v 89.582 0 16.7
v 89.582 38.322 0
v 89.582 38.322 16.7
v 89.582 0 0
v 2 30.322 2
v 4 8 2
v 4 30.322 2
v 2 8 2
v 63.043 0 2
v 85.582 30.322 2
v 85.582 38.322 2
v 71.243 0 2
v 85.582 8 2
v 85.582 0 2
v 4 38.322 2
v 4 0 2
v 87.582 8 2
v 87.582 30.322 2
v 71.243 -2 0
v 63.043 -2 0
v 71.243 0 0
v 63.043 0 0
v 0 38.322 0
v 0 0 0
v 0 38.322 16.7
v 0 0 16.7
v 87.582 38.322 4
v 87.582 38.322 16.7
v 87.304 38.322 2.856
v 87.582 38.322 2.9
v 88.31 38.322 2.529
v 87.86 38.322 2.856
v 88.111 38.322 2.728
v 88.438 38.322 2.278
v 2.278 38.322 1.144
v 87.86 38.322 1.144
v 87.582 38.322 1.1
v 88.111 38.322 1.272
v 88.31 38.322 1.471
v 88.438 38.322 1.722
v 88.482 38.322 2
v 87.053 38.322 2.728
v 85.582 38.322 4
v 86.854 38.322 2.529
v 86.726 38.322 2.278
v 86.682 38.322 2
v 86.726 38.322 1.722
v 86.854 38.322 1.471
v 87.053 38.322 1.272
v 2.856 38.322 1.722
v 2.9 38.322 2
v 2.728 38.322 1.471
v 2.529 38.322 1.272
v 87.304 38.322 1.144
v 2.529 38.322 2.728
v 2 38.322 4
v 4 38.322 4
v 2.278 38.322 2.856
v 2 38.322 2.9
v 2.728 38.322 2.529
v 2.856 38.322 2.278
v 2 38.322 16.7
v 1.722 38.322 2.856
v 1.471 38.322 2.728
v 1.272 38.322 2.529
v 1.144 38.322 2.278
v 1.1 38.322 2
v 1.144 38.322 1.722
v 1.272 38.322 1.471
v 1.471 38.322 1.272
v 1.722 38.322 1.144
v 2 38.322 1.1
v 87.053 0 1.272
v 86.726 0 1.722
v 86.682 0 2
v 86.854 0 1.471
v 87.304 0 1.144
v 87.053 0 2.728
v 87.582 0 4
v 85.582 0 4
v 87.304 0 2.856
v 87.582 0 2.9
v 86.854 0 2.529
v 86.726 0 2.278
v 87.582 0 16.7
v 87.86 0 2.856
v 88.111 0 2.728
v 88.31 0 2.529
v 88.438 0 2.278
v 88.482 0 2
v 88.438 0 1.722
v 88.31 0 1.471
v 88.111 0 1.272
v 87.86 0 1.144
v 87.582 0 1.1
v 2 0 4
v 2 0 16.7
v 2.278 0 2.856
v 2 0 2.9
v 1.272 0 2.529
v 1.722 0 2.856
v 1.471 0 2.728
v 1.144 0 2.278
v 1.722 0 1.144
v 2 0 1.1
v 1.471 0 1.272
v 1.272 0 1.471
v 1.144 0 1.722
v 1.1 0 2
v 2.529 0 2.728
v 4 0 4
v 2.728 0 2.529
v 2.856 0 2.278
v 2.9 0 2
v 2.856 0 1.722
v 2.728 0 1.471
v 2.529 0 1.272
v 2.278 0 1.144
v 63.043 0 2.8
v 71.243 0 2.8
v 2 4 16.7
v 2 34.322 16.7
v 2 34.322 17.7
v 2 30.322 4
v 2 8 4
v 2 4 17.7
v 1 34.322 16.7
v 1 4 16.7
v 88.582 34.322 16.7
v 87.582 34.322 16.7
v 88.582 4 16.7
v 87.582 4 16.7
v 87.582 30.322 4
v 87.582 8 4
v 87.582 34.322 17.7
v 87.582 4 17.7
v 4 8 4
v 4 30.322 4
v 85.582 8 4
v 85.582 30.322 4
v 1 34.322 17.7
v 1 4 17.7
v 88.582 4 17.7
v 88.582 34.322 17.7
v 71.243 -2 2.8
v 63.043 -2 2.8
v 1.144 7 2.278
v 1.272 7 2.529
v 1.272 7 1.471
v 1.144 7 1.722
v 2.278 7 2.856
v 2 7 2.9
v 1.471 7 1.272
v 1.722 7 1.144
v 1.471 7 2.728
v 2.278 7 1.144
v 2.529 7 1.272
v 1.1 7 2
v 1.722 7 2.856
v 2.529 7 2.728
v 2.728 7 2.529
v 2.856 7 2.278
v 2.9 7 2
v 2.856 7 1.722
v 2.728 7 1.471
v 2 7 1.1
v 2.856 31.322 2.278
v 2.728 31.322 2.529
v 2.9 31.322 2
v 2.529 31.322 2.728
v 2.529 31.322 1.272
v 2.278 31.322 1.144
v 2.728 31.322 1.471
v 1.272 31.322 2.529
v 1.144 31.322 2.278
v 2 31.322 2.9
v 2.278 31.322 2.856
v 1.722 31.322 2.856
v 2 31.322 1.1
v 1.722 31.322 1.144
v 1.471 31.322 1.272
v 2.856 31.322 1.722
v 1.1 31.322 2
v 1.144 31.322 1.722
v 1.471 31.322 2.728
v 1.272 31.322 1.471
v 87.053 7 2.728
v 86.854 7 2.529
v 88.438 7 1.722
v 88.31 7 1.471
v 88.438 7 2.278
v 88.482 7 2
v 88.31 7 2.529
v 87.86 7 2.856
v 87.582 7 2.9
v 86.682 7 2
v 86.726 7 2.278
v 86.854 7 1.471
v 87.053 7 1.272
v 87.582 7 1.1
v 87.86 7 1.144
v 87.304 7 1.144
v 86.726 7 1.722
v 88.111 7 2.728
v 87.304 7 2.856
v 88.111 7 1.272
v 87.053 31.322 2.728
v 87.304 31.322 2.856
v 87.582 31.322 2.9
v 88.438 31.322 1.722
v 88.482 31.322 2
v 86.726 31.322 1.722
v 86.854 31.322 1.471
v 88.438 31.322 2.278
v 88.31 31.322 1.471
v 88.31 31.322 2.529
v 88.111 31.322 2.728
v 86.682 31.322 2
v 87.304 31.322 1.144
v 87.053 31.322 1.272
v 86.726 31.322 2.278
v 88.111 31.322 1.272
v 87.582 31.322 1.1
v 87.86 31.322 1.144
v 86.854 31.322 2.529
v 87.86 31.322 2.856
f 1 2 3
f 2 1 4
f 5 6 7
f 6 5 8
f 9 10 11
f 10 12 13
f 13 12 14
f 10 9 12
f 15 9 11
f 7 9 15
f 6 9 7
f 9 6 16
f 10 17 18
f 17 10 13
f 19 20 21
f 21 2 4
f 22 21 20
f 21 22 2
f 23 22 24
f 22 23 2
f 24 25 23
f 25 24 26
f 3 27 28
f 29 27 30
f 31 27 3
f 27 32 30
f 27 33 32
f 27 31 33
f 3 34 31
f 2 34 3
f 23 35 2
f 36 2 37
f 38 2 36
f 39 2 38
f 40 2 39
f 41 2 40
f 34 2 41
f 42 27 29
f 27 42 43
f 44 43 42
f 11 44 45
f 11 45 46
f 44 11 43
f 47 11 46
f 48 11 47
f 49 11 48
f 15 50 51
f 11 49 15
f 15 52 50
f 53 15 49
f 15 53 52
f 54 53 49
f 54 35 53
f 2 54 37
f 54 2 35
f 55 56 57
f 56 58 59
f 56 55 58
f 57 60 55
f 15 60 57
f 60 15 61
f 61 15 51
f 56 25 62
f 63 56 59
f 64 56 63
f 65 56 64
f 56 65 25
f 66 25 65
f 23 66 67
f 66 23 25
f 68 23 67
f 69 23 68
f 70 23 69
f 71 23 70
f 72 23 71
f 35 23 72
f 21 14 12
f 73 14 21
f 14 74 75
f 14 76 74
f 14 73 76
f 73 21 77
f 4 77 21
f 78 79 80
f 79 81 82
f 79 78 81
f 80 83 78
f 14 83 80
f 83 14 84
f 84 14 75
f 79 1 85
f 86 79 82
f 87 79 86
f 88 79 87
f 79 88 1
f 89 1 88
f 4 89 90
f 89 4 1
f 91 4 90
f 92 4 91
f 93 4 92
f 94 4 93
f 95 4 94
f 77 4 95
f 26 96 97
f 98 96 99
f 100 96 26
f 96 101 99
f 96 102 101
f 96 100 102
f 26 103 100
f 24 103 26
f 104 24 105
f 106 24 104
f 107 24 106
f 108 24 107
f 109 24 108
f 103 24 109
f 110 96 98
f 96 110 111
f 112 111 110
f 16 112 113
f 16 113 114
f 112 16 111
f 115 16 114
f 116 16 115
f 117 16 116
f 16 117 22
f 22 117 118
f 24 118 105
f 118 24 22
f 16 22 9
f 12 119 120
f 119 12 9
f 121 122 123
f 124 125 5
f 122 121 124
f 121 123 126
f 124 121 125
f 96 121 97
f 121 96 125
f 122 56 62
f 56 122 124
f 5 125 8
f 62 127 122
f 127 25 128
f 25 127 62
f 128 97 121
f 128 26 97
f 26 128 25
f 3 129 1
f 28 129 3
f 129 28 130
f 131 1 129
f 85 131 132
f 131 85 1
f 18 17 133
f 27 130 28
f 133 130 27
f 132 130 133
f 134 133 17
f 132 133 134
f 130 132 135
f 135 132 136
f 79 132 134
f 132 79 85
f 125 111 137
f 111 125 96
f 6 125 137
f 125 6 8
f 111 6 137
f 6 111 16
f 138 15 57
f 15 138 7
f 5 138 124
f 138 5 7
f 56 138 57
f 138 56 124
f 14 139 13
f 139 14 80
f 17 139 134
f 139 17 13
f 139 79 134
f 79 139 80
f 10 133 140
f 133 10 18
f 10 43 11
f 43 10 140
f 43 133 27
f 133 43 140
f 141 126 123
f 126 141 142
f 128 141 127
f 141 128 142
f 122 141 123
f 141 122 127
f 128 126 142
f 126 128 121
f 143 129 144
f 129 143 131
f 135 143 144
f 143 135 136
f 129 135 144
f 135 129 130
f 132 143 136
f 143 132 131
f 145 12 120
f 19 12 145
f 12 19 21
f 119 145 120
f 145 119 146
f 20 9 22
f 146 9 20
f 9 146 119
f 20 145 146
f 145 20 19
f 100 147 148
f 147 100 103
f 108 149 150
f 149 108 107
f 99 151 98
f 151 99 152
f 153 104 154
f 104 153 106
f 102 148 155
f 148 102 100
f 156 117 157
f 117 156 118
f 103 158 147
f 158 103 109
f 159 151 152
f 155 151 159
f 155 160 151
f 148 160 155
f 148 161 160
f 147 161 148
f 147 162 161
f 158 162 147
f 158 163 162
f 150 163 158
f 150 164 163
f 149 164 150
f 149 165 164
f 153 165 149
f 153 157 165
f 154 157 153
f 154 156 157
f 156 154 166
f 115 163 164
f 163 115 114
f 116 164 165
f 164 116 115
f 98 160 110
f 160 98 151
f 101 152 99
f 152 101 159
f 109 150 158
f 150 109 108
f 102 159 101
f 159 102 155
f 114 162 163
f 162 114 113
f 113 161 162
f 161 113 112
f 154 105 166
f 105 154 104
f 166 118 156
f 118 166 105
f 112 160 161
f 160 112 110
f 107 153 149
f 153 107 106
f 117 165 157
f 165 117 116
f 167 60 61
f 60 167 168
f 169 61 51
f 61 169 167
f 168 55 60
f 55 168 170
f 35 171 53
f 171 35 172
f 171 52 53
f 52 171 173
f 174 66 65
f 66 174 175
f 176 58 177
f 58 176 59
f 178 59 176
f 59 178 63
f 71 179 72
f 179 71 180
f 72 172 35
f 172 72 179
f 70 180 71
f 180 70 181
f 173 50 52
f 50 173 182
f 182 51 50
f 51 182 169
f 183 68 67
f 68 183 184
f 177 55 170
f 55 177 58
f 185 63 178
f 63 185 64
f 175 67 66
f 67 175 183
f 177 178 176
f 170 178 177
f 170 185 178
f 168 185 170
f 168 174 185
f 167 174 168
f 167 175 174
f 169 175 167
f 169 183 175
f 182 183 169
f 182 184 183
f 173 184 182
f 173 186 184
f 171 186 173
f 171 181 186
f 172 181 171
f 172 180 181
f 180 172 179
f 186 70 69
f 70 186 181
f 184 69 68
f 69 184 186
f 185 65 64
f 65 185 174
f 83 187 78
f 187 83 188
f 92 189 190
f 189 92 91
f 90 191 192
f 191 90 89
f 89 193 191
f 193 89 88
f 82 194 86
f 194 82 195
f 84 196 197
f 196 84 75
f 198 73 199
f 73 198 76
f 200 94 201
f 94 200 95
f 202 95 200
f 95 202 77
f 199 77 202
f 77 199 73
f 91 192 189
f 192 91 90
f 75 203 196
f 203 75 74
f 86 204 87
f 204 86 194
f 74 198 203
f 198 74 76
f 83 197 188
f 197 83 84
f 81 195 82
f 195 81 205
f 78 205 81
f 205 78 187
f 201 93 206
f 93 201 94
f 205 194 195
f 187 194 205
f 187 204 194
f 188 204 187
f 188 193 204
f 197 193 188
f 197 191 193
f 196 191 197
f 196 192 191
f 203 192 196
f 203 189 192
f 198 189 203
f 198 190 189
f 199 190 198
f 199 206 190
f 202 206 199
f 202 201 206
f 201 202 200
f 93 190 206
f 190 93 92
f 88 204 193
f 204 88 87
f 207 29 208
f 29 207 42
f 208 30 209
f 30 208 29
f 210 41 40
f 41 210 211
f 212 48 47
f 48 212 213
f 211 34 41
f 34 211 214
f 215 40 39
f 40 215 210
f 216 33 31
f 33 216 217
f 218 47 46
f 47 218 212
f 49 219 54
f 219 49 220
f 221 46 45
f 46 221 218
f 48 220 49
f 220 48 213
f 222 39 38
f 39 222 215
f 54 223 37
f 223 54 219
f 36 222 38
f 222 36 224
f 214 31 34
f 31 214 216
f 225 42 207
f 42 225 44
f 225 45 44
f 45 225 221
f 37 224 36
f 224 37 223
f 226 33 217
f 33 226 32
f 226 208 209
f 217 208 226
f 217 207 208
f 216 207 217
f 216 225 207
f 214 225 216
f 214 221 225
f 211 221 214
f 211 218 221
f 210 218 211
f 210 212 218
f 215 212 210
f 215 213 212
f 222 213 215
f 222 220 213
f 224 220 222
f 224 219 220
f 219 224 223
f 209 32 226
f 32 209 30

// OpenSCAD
// file: settings.scad
/*
 * SPDX-FileCopyrightText: 2022 Rafael G. Martins <rafael@rafaelmartins.eng.br>
 * SPDX-License-Identifier: CERN-OHL-S-2.0
 */

thickness = 2;

pcb_width = 84.582;
pcb_length = 36.322;
pcb_screw1_x = 2.921;
pcb_screw1_y = pcb_length - 5.207 - 12.192;
pcb_screw2_x = pcb_screw1_x + 17.018;
pcb_screw2_y = pcb_screw1_y + 12.192;
pcb_screw3_x = pcb_screw2_x + 22.352;
pcb_screw3_y = pcb_screw2_y;
pcb_screw_base_height = 8;
pcb_screw_base_d = 5;
pcb_screw_d = 2;
pcb_padding_x = thickness + 0.5;
pcb_padding_y = thickness + 1;

screw_d = 2;
screw_h = 7;

usb_height = 4.4;
usb_width = 8.2;
usb_distance_x = pcb_padding_x + 19.939 - usb_width / 2;
usb_distance_z = thickness + pcb_screw_base_height + 1.6 - 0.1;

button0_x = 8.763;
button0_y = 6.985;
button_d = 10;
button_distance = 22.352;

led_width = 1.8;
led_length = 1;
led_margin = 1;
led_x = button0_x + 3 * button_distance;
led_y = 5.207 + 12.192;
led_d = 3.4;

gap = 0;

width = pcb_width + 2 * pcb_padding_x;
length = pcb_length + 2 * pcb_padding_y;
height = usb_distance_z + usb_height + 0.8 + thickness;
// file: ../lib/screw-base.scad
// SPDX-FileCopyrightText: 2022-2024 Rafael G. Martins <rafael@rafaelmartins.eng.br>
// SPDX-License-Identifier: CERN-OHL-S-2.0

function screw_base_dim(screw_d) = screw_d + 2;
function screw_base_height(screw_h) = screw_h + 1;


module screw_base_add(screw_d, screw_h) {
    cube([screw_base_dim(screw_d), screw_base_dim(screw_d), screw_base_height(screw_h)]);
}


module screw_base_sub(screw_d, screw_h) {
    translate([screw_base_dim(screw_d) / 2, screw_base_dim(screw_d) / 2, 0])
        cylinder(screw_h, d=screw_d - 0.2, $fn=20);
}
// main file
/*
 * SPDX-FileCopyrightText: 2022 Rafael G. Martins <rafael@rafaelmartins.eng.br>
 * SPDX-License-Identifier: CERN-OHL-S-2.0
 */

include <../lib/screw-base.scad>
include <settings.scad>

length_ = length - 2 * (thickness + gap);
height_ = height - thickness - gap;

difference() {
    union() {
        cube([width, length_, thickness]);
        cube([thickness, length_, height_]);
        translate([width - thickness, 0, 0])
            cube([thickness, length_, height_]);

        rotate([-90, -90, 0])
            screw_base_add(screw_d, screw_h);
        translate([0, length_, 0])
            rotate([90, 0, 0])
                screw_base_add(screw_d, screw_h);
        translate([width, 0, 0])
            rotate([-90, 180, 0])
                screw_base_add(screw_d, screw_h);
        translate([width, length_, 0])
            rotate([90, -90, 0])
                screw_base_add(screw_d, screw_h);

        translate([thickness / 2, 4, height_])
            cube([thickness / 2, length_ - 8, thickness / 2]);
        translate([width - thickness, 4, height_])
            cube([thickness / 2, length_ - 8, thickness / 2]);

        translate([width - usb_distance_x - usb_width + gap, -(thickness + gap), 0])
            cube([usb_width - 2 * gap, thickness + gap, height - usb_distance_z - usb_height]);
    }

    rotate([-90, -90, 0])
        screw_base_sub(screw_d, screw_h);
    translate([0, length_, 0])
        rotate([90, 0, 0])
            screw_base_sub(screw_d, screw_h);
    translate([width, 0, 0])
        rotate([-90, 180, 0])
            screw_base_sub(screw_d, screw_h);
    translate([width, length_, 0])
        rotate([90, -90, 0])
            screw_base_sub(screw_d, screw_h);
}
